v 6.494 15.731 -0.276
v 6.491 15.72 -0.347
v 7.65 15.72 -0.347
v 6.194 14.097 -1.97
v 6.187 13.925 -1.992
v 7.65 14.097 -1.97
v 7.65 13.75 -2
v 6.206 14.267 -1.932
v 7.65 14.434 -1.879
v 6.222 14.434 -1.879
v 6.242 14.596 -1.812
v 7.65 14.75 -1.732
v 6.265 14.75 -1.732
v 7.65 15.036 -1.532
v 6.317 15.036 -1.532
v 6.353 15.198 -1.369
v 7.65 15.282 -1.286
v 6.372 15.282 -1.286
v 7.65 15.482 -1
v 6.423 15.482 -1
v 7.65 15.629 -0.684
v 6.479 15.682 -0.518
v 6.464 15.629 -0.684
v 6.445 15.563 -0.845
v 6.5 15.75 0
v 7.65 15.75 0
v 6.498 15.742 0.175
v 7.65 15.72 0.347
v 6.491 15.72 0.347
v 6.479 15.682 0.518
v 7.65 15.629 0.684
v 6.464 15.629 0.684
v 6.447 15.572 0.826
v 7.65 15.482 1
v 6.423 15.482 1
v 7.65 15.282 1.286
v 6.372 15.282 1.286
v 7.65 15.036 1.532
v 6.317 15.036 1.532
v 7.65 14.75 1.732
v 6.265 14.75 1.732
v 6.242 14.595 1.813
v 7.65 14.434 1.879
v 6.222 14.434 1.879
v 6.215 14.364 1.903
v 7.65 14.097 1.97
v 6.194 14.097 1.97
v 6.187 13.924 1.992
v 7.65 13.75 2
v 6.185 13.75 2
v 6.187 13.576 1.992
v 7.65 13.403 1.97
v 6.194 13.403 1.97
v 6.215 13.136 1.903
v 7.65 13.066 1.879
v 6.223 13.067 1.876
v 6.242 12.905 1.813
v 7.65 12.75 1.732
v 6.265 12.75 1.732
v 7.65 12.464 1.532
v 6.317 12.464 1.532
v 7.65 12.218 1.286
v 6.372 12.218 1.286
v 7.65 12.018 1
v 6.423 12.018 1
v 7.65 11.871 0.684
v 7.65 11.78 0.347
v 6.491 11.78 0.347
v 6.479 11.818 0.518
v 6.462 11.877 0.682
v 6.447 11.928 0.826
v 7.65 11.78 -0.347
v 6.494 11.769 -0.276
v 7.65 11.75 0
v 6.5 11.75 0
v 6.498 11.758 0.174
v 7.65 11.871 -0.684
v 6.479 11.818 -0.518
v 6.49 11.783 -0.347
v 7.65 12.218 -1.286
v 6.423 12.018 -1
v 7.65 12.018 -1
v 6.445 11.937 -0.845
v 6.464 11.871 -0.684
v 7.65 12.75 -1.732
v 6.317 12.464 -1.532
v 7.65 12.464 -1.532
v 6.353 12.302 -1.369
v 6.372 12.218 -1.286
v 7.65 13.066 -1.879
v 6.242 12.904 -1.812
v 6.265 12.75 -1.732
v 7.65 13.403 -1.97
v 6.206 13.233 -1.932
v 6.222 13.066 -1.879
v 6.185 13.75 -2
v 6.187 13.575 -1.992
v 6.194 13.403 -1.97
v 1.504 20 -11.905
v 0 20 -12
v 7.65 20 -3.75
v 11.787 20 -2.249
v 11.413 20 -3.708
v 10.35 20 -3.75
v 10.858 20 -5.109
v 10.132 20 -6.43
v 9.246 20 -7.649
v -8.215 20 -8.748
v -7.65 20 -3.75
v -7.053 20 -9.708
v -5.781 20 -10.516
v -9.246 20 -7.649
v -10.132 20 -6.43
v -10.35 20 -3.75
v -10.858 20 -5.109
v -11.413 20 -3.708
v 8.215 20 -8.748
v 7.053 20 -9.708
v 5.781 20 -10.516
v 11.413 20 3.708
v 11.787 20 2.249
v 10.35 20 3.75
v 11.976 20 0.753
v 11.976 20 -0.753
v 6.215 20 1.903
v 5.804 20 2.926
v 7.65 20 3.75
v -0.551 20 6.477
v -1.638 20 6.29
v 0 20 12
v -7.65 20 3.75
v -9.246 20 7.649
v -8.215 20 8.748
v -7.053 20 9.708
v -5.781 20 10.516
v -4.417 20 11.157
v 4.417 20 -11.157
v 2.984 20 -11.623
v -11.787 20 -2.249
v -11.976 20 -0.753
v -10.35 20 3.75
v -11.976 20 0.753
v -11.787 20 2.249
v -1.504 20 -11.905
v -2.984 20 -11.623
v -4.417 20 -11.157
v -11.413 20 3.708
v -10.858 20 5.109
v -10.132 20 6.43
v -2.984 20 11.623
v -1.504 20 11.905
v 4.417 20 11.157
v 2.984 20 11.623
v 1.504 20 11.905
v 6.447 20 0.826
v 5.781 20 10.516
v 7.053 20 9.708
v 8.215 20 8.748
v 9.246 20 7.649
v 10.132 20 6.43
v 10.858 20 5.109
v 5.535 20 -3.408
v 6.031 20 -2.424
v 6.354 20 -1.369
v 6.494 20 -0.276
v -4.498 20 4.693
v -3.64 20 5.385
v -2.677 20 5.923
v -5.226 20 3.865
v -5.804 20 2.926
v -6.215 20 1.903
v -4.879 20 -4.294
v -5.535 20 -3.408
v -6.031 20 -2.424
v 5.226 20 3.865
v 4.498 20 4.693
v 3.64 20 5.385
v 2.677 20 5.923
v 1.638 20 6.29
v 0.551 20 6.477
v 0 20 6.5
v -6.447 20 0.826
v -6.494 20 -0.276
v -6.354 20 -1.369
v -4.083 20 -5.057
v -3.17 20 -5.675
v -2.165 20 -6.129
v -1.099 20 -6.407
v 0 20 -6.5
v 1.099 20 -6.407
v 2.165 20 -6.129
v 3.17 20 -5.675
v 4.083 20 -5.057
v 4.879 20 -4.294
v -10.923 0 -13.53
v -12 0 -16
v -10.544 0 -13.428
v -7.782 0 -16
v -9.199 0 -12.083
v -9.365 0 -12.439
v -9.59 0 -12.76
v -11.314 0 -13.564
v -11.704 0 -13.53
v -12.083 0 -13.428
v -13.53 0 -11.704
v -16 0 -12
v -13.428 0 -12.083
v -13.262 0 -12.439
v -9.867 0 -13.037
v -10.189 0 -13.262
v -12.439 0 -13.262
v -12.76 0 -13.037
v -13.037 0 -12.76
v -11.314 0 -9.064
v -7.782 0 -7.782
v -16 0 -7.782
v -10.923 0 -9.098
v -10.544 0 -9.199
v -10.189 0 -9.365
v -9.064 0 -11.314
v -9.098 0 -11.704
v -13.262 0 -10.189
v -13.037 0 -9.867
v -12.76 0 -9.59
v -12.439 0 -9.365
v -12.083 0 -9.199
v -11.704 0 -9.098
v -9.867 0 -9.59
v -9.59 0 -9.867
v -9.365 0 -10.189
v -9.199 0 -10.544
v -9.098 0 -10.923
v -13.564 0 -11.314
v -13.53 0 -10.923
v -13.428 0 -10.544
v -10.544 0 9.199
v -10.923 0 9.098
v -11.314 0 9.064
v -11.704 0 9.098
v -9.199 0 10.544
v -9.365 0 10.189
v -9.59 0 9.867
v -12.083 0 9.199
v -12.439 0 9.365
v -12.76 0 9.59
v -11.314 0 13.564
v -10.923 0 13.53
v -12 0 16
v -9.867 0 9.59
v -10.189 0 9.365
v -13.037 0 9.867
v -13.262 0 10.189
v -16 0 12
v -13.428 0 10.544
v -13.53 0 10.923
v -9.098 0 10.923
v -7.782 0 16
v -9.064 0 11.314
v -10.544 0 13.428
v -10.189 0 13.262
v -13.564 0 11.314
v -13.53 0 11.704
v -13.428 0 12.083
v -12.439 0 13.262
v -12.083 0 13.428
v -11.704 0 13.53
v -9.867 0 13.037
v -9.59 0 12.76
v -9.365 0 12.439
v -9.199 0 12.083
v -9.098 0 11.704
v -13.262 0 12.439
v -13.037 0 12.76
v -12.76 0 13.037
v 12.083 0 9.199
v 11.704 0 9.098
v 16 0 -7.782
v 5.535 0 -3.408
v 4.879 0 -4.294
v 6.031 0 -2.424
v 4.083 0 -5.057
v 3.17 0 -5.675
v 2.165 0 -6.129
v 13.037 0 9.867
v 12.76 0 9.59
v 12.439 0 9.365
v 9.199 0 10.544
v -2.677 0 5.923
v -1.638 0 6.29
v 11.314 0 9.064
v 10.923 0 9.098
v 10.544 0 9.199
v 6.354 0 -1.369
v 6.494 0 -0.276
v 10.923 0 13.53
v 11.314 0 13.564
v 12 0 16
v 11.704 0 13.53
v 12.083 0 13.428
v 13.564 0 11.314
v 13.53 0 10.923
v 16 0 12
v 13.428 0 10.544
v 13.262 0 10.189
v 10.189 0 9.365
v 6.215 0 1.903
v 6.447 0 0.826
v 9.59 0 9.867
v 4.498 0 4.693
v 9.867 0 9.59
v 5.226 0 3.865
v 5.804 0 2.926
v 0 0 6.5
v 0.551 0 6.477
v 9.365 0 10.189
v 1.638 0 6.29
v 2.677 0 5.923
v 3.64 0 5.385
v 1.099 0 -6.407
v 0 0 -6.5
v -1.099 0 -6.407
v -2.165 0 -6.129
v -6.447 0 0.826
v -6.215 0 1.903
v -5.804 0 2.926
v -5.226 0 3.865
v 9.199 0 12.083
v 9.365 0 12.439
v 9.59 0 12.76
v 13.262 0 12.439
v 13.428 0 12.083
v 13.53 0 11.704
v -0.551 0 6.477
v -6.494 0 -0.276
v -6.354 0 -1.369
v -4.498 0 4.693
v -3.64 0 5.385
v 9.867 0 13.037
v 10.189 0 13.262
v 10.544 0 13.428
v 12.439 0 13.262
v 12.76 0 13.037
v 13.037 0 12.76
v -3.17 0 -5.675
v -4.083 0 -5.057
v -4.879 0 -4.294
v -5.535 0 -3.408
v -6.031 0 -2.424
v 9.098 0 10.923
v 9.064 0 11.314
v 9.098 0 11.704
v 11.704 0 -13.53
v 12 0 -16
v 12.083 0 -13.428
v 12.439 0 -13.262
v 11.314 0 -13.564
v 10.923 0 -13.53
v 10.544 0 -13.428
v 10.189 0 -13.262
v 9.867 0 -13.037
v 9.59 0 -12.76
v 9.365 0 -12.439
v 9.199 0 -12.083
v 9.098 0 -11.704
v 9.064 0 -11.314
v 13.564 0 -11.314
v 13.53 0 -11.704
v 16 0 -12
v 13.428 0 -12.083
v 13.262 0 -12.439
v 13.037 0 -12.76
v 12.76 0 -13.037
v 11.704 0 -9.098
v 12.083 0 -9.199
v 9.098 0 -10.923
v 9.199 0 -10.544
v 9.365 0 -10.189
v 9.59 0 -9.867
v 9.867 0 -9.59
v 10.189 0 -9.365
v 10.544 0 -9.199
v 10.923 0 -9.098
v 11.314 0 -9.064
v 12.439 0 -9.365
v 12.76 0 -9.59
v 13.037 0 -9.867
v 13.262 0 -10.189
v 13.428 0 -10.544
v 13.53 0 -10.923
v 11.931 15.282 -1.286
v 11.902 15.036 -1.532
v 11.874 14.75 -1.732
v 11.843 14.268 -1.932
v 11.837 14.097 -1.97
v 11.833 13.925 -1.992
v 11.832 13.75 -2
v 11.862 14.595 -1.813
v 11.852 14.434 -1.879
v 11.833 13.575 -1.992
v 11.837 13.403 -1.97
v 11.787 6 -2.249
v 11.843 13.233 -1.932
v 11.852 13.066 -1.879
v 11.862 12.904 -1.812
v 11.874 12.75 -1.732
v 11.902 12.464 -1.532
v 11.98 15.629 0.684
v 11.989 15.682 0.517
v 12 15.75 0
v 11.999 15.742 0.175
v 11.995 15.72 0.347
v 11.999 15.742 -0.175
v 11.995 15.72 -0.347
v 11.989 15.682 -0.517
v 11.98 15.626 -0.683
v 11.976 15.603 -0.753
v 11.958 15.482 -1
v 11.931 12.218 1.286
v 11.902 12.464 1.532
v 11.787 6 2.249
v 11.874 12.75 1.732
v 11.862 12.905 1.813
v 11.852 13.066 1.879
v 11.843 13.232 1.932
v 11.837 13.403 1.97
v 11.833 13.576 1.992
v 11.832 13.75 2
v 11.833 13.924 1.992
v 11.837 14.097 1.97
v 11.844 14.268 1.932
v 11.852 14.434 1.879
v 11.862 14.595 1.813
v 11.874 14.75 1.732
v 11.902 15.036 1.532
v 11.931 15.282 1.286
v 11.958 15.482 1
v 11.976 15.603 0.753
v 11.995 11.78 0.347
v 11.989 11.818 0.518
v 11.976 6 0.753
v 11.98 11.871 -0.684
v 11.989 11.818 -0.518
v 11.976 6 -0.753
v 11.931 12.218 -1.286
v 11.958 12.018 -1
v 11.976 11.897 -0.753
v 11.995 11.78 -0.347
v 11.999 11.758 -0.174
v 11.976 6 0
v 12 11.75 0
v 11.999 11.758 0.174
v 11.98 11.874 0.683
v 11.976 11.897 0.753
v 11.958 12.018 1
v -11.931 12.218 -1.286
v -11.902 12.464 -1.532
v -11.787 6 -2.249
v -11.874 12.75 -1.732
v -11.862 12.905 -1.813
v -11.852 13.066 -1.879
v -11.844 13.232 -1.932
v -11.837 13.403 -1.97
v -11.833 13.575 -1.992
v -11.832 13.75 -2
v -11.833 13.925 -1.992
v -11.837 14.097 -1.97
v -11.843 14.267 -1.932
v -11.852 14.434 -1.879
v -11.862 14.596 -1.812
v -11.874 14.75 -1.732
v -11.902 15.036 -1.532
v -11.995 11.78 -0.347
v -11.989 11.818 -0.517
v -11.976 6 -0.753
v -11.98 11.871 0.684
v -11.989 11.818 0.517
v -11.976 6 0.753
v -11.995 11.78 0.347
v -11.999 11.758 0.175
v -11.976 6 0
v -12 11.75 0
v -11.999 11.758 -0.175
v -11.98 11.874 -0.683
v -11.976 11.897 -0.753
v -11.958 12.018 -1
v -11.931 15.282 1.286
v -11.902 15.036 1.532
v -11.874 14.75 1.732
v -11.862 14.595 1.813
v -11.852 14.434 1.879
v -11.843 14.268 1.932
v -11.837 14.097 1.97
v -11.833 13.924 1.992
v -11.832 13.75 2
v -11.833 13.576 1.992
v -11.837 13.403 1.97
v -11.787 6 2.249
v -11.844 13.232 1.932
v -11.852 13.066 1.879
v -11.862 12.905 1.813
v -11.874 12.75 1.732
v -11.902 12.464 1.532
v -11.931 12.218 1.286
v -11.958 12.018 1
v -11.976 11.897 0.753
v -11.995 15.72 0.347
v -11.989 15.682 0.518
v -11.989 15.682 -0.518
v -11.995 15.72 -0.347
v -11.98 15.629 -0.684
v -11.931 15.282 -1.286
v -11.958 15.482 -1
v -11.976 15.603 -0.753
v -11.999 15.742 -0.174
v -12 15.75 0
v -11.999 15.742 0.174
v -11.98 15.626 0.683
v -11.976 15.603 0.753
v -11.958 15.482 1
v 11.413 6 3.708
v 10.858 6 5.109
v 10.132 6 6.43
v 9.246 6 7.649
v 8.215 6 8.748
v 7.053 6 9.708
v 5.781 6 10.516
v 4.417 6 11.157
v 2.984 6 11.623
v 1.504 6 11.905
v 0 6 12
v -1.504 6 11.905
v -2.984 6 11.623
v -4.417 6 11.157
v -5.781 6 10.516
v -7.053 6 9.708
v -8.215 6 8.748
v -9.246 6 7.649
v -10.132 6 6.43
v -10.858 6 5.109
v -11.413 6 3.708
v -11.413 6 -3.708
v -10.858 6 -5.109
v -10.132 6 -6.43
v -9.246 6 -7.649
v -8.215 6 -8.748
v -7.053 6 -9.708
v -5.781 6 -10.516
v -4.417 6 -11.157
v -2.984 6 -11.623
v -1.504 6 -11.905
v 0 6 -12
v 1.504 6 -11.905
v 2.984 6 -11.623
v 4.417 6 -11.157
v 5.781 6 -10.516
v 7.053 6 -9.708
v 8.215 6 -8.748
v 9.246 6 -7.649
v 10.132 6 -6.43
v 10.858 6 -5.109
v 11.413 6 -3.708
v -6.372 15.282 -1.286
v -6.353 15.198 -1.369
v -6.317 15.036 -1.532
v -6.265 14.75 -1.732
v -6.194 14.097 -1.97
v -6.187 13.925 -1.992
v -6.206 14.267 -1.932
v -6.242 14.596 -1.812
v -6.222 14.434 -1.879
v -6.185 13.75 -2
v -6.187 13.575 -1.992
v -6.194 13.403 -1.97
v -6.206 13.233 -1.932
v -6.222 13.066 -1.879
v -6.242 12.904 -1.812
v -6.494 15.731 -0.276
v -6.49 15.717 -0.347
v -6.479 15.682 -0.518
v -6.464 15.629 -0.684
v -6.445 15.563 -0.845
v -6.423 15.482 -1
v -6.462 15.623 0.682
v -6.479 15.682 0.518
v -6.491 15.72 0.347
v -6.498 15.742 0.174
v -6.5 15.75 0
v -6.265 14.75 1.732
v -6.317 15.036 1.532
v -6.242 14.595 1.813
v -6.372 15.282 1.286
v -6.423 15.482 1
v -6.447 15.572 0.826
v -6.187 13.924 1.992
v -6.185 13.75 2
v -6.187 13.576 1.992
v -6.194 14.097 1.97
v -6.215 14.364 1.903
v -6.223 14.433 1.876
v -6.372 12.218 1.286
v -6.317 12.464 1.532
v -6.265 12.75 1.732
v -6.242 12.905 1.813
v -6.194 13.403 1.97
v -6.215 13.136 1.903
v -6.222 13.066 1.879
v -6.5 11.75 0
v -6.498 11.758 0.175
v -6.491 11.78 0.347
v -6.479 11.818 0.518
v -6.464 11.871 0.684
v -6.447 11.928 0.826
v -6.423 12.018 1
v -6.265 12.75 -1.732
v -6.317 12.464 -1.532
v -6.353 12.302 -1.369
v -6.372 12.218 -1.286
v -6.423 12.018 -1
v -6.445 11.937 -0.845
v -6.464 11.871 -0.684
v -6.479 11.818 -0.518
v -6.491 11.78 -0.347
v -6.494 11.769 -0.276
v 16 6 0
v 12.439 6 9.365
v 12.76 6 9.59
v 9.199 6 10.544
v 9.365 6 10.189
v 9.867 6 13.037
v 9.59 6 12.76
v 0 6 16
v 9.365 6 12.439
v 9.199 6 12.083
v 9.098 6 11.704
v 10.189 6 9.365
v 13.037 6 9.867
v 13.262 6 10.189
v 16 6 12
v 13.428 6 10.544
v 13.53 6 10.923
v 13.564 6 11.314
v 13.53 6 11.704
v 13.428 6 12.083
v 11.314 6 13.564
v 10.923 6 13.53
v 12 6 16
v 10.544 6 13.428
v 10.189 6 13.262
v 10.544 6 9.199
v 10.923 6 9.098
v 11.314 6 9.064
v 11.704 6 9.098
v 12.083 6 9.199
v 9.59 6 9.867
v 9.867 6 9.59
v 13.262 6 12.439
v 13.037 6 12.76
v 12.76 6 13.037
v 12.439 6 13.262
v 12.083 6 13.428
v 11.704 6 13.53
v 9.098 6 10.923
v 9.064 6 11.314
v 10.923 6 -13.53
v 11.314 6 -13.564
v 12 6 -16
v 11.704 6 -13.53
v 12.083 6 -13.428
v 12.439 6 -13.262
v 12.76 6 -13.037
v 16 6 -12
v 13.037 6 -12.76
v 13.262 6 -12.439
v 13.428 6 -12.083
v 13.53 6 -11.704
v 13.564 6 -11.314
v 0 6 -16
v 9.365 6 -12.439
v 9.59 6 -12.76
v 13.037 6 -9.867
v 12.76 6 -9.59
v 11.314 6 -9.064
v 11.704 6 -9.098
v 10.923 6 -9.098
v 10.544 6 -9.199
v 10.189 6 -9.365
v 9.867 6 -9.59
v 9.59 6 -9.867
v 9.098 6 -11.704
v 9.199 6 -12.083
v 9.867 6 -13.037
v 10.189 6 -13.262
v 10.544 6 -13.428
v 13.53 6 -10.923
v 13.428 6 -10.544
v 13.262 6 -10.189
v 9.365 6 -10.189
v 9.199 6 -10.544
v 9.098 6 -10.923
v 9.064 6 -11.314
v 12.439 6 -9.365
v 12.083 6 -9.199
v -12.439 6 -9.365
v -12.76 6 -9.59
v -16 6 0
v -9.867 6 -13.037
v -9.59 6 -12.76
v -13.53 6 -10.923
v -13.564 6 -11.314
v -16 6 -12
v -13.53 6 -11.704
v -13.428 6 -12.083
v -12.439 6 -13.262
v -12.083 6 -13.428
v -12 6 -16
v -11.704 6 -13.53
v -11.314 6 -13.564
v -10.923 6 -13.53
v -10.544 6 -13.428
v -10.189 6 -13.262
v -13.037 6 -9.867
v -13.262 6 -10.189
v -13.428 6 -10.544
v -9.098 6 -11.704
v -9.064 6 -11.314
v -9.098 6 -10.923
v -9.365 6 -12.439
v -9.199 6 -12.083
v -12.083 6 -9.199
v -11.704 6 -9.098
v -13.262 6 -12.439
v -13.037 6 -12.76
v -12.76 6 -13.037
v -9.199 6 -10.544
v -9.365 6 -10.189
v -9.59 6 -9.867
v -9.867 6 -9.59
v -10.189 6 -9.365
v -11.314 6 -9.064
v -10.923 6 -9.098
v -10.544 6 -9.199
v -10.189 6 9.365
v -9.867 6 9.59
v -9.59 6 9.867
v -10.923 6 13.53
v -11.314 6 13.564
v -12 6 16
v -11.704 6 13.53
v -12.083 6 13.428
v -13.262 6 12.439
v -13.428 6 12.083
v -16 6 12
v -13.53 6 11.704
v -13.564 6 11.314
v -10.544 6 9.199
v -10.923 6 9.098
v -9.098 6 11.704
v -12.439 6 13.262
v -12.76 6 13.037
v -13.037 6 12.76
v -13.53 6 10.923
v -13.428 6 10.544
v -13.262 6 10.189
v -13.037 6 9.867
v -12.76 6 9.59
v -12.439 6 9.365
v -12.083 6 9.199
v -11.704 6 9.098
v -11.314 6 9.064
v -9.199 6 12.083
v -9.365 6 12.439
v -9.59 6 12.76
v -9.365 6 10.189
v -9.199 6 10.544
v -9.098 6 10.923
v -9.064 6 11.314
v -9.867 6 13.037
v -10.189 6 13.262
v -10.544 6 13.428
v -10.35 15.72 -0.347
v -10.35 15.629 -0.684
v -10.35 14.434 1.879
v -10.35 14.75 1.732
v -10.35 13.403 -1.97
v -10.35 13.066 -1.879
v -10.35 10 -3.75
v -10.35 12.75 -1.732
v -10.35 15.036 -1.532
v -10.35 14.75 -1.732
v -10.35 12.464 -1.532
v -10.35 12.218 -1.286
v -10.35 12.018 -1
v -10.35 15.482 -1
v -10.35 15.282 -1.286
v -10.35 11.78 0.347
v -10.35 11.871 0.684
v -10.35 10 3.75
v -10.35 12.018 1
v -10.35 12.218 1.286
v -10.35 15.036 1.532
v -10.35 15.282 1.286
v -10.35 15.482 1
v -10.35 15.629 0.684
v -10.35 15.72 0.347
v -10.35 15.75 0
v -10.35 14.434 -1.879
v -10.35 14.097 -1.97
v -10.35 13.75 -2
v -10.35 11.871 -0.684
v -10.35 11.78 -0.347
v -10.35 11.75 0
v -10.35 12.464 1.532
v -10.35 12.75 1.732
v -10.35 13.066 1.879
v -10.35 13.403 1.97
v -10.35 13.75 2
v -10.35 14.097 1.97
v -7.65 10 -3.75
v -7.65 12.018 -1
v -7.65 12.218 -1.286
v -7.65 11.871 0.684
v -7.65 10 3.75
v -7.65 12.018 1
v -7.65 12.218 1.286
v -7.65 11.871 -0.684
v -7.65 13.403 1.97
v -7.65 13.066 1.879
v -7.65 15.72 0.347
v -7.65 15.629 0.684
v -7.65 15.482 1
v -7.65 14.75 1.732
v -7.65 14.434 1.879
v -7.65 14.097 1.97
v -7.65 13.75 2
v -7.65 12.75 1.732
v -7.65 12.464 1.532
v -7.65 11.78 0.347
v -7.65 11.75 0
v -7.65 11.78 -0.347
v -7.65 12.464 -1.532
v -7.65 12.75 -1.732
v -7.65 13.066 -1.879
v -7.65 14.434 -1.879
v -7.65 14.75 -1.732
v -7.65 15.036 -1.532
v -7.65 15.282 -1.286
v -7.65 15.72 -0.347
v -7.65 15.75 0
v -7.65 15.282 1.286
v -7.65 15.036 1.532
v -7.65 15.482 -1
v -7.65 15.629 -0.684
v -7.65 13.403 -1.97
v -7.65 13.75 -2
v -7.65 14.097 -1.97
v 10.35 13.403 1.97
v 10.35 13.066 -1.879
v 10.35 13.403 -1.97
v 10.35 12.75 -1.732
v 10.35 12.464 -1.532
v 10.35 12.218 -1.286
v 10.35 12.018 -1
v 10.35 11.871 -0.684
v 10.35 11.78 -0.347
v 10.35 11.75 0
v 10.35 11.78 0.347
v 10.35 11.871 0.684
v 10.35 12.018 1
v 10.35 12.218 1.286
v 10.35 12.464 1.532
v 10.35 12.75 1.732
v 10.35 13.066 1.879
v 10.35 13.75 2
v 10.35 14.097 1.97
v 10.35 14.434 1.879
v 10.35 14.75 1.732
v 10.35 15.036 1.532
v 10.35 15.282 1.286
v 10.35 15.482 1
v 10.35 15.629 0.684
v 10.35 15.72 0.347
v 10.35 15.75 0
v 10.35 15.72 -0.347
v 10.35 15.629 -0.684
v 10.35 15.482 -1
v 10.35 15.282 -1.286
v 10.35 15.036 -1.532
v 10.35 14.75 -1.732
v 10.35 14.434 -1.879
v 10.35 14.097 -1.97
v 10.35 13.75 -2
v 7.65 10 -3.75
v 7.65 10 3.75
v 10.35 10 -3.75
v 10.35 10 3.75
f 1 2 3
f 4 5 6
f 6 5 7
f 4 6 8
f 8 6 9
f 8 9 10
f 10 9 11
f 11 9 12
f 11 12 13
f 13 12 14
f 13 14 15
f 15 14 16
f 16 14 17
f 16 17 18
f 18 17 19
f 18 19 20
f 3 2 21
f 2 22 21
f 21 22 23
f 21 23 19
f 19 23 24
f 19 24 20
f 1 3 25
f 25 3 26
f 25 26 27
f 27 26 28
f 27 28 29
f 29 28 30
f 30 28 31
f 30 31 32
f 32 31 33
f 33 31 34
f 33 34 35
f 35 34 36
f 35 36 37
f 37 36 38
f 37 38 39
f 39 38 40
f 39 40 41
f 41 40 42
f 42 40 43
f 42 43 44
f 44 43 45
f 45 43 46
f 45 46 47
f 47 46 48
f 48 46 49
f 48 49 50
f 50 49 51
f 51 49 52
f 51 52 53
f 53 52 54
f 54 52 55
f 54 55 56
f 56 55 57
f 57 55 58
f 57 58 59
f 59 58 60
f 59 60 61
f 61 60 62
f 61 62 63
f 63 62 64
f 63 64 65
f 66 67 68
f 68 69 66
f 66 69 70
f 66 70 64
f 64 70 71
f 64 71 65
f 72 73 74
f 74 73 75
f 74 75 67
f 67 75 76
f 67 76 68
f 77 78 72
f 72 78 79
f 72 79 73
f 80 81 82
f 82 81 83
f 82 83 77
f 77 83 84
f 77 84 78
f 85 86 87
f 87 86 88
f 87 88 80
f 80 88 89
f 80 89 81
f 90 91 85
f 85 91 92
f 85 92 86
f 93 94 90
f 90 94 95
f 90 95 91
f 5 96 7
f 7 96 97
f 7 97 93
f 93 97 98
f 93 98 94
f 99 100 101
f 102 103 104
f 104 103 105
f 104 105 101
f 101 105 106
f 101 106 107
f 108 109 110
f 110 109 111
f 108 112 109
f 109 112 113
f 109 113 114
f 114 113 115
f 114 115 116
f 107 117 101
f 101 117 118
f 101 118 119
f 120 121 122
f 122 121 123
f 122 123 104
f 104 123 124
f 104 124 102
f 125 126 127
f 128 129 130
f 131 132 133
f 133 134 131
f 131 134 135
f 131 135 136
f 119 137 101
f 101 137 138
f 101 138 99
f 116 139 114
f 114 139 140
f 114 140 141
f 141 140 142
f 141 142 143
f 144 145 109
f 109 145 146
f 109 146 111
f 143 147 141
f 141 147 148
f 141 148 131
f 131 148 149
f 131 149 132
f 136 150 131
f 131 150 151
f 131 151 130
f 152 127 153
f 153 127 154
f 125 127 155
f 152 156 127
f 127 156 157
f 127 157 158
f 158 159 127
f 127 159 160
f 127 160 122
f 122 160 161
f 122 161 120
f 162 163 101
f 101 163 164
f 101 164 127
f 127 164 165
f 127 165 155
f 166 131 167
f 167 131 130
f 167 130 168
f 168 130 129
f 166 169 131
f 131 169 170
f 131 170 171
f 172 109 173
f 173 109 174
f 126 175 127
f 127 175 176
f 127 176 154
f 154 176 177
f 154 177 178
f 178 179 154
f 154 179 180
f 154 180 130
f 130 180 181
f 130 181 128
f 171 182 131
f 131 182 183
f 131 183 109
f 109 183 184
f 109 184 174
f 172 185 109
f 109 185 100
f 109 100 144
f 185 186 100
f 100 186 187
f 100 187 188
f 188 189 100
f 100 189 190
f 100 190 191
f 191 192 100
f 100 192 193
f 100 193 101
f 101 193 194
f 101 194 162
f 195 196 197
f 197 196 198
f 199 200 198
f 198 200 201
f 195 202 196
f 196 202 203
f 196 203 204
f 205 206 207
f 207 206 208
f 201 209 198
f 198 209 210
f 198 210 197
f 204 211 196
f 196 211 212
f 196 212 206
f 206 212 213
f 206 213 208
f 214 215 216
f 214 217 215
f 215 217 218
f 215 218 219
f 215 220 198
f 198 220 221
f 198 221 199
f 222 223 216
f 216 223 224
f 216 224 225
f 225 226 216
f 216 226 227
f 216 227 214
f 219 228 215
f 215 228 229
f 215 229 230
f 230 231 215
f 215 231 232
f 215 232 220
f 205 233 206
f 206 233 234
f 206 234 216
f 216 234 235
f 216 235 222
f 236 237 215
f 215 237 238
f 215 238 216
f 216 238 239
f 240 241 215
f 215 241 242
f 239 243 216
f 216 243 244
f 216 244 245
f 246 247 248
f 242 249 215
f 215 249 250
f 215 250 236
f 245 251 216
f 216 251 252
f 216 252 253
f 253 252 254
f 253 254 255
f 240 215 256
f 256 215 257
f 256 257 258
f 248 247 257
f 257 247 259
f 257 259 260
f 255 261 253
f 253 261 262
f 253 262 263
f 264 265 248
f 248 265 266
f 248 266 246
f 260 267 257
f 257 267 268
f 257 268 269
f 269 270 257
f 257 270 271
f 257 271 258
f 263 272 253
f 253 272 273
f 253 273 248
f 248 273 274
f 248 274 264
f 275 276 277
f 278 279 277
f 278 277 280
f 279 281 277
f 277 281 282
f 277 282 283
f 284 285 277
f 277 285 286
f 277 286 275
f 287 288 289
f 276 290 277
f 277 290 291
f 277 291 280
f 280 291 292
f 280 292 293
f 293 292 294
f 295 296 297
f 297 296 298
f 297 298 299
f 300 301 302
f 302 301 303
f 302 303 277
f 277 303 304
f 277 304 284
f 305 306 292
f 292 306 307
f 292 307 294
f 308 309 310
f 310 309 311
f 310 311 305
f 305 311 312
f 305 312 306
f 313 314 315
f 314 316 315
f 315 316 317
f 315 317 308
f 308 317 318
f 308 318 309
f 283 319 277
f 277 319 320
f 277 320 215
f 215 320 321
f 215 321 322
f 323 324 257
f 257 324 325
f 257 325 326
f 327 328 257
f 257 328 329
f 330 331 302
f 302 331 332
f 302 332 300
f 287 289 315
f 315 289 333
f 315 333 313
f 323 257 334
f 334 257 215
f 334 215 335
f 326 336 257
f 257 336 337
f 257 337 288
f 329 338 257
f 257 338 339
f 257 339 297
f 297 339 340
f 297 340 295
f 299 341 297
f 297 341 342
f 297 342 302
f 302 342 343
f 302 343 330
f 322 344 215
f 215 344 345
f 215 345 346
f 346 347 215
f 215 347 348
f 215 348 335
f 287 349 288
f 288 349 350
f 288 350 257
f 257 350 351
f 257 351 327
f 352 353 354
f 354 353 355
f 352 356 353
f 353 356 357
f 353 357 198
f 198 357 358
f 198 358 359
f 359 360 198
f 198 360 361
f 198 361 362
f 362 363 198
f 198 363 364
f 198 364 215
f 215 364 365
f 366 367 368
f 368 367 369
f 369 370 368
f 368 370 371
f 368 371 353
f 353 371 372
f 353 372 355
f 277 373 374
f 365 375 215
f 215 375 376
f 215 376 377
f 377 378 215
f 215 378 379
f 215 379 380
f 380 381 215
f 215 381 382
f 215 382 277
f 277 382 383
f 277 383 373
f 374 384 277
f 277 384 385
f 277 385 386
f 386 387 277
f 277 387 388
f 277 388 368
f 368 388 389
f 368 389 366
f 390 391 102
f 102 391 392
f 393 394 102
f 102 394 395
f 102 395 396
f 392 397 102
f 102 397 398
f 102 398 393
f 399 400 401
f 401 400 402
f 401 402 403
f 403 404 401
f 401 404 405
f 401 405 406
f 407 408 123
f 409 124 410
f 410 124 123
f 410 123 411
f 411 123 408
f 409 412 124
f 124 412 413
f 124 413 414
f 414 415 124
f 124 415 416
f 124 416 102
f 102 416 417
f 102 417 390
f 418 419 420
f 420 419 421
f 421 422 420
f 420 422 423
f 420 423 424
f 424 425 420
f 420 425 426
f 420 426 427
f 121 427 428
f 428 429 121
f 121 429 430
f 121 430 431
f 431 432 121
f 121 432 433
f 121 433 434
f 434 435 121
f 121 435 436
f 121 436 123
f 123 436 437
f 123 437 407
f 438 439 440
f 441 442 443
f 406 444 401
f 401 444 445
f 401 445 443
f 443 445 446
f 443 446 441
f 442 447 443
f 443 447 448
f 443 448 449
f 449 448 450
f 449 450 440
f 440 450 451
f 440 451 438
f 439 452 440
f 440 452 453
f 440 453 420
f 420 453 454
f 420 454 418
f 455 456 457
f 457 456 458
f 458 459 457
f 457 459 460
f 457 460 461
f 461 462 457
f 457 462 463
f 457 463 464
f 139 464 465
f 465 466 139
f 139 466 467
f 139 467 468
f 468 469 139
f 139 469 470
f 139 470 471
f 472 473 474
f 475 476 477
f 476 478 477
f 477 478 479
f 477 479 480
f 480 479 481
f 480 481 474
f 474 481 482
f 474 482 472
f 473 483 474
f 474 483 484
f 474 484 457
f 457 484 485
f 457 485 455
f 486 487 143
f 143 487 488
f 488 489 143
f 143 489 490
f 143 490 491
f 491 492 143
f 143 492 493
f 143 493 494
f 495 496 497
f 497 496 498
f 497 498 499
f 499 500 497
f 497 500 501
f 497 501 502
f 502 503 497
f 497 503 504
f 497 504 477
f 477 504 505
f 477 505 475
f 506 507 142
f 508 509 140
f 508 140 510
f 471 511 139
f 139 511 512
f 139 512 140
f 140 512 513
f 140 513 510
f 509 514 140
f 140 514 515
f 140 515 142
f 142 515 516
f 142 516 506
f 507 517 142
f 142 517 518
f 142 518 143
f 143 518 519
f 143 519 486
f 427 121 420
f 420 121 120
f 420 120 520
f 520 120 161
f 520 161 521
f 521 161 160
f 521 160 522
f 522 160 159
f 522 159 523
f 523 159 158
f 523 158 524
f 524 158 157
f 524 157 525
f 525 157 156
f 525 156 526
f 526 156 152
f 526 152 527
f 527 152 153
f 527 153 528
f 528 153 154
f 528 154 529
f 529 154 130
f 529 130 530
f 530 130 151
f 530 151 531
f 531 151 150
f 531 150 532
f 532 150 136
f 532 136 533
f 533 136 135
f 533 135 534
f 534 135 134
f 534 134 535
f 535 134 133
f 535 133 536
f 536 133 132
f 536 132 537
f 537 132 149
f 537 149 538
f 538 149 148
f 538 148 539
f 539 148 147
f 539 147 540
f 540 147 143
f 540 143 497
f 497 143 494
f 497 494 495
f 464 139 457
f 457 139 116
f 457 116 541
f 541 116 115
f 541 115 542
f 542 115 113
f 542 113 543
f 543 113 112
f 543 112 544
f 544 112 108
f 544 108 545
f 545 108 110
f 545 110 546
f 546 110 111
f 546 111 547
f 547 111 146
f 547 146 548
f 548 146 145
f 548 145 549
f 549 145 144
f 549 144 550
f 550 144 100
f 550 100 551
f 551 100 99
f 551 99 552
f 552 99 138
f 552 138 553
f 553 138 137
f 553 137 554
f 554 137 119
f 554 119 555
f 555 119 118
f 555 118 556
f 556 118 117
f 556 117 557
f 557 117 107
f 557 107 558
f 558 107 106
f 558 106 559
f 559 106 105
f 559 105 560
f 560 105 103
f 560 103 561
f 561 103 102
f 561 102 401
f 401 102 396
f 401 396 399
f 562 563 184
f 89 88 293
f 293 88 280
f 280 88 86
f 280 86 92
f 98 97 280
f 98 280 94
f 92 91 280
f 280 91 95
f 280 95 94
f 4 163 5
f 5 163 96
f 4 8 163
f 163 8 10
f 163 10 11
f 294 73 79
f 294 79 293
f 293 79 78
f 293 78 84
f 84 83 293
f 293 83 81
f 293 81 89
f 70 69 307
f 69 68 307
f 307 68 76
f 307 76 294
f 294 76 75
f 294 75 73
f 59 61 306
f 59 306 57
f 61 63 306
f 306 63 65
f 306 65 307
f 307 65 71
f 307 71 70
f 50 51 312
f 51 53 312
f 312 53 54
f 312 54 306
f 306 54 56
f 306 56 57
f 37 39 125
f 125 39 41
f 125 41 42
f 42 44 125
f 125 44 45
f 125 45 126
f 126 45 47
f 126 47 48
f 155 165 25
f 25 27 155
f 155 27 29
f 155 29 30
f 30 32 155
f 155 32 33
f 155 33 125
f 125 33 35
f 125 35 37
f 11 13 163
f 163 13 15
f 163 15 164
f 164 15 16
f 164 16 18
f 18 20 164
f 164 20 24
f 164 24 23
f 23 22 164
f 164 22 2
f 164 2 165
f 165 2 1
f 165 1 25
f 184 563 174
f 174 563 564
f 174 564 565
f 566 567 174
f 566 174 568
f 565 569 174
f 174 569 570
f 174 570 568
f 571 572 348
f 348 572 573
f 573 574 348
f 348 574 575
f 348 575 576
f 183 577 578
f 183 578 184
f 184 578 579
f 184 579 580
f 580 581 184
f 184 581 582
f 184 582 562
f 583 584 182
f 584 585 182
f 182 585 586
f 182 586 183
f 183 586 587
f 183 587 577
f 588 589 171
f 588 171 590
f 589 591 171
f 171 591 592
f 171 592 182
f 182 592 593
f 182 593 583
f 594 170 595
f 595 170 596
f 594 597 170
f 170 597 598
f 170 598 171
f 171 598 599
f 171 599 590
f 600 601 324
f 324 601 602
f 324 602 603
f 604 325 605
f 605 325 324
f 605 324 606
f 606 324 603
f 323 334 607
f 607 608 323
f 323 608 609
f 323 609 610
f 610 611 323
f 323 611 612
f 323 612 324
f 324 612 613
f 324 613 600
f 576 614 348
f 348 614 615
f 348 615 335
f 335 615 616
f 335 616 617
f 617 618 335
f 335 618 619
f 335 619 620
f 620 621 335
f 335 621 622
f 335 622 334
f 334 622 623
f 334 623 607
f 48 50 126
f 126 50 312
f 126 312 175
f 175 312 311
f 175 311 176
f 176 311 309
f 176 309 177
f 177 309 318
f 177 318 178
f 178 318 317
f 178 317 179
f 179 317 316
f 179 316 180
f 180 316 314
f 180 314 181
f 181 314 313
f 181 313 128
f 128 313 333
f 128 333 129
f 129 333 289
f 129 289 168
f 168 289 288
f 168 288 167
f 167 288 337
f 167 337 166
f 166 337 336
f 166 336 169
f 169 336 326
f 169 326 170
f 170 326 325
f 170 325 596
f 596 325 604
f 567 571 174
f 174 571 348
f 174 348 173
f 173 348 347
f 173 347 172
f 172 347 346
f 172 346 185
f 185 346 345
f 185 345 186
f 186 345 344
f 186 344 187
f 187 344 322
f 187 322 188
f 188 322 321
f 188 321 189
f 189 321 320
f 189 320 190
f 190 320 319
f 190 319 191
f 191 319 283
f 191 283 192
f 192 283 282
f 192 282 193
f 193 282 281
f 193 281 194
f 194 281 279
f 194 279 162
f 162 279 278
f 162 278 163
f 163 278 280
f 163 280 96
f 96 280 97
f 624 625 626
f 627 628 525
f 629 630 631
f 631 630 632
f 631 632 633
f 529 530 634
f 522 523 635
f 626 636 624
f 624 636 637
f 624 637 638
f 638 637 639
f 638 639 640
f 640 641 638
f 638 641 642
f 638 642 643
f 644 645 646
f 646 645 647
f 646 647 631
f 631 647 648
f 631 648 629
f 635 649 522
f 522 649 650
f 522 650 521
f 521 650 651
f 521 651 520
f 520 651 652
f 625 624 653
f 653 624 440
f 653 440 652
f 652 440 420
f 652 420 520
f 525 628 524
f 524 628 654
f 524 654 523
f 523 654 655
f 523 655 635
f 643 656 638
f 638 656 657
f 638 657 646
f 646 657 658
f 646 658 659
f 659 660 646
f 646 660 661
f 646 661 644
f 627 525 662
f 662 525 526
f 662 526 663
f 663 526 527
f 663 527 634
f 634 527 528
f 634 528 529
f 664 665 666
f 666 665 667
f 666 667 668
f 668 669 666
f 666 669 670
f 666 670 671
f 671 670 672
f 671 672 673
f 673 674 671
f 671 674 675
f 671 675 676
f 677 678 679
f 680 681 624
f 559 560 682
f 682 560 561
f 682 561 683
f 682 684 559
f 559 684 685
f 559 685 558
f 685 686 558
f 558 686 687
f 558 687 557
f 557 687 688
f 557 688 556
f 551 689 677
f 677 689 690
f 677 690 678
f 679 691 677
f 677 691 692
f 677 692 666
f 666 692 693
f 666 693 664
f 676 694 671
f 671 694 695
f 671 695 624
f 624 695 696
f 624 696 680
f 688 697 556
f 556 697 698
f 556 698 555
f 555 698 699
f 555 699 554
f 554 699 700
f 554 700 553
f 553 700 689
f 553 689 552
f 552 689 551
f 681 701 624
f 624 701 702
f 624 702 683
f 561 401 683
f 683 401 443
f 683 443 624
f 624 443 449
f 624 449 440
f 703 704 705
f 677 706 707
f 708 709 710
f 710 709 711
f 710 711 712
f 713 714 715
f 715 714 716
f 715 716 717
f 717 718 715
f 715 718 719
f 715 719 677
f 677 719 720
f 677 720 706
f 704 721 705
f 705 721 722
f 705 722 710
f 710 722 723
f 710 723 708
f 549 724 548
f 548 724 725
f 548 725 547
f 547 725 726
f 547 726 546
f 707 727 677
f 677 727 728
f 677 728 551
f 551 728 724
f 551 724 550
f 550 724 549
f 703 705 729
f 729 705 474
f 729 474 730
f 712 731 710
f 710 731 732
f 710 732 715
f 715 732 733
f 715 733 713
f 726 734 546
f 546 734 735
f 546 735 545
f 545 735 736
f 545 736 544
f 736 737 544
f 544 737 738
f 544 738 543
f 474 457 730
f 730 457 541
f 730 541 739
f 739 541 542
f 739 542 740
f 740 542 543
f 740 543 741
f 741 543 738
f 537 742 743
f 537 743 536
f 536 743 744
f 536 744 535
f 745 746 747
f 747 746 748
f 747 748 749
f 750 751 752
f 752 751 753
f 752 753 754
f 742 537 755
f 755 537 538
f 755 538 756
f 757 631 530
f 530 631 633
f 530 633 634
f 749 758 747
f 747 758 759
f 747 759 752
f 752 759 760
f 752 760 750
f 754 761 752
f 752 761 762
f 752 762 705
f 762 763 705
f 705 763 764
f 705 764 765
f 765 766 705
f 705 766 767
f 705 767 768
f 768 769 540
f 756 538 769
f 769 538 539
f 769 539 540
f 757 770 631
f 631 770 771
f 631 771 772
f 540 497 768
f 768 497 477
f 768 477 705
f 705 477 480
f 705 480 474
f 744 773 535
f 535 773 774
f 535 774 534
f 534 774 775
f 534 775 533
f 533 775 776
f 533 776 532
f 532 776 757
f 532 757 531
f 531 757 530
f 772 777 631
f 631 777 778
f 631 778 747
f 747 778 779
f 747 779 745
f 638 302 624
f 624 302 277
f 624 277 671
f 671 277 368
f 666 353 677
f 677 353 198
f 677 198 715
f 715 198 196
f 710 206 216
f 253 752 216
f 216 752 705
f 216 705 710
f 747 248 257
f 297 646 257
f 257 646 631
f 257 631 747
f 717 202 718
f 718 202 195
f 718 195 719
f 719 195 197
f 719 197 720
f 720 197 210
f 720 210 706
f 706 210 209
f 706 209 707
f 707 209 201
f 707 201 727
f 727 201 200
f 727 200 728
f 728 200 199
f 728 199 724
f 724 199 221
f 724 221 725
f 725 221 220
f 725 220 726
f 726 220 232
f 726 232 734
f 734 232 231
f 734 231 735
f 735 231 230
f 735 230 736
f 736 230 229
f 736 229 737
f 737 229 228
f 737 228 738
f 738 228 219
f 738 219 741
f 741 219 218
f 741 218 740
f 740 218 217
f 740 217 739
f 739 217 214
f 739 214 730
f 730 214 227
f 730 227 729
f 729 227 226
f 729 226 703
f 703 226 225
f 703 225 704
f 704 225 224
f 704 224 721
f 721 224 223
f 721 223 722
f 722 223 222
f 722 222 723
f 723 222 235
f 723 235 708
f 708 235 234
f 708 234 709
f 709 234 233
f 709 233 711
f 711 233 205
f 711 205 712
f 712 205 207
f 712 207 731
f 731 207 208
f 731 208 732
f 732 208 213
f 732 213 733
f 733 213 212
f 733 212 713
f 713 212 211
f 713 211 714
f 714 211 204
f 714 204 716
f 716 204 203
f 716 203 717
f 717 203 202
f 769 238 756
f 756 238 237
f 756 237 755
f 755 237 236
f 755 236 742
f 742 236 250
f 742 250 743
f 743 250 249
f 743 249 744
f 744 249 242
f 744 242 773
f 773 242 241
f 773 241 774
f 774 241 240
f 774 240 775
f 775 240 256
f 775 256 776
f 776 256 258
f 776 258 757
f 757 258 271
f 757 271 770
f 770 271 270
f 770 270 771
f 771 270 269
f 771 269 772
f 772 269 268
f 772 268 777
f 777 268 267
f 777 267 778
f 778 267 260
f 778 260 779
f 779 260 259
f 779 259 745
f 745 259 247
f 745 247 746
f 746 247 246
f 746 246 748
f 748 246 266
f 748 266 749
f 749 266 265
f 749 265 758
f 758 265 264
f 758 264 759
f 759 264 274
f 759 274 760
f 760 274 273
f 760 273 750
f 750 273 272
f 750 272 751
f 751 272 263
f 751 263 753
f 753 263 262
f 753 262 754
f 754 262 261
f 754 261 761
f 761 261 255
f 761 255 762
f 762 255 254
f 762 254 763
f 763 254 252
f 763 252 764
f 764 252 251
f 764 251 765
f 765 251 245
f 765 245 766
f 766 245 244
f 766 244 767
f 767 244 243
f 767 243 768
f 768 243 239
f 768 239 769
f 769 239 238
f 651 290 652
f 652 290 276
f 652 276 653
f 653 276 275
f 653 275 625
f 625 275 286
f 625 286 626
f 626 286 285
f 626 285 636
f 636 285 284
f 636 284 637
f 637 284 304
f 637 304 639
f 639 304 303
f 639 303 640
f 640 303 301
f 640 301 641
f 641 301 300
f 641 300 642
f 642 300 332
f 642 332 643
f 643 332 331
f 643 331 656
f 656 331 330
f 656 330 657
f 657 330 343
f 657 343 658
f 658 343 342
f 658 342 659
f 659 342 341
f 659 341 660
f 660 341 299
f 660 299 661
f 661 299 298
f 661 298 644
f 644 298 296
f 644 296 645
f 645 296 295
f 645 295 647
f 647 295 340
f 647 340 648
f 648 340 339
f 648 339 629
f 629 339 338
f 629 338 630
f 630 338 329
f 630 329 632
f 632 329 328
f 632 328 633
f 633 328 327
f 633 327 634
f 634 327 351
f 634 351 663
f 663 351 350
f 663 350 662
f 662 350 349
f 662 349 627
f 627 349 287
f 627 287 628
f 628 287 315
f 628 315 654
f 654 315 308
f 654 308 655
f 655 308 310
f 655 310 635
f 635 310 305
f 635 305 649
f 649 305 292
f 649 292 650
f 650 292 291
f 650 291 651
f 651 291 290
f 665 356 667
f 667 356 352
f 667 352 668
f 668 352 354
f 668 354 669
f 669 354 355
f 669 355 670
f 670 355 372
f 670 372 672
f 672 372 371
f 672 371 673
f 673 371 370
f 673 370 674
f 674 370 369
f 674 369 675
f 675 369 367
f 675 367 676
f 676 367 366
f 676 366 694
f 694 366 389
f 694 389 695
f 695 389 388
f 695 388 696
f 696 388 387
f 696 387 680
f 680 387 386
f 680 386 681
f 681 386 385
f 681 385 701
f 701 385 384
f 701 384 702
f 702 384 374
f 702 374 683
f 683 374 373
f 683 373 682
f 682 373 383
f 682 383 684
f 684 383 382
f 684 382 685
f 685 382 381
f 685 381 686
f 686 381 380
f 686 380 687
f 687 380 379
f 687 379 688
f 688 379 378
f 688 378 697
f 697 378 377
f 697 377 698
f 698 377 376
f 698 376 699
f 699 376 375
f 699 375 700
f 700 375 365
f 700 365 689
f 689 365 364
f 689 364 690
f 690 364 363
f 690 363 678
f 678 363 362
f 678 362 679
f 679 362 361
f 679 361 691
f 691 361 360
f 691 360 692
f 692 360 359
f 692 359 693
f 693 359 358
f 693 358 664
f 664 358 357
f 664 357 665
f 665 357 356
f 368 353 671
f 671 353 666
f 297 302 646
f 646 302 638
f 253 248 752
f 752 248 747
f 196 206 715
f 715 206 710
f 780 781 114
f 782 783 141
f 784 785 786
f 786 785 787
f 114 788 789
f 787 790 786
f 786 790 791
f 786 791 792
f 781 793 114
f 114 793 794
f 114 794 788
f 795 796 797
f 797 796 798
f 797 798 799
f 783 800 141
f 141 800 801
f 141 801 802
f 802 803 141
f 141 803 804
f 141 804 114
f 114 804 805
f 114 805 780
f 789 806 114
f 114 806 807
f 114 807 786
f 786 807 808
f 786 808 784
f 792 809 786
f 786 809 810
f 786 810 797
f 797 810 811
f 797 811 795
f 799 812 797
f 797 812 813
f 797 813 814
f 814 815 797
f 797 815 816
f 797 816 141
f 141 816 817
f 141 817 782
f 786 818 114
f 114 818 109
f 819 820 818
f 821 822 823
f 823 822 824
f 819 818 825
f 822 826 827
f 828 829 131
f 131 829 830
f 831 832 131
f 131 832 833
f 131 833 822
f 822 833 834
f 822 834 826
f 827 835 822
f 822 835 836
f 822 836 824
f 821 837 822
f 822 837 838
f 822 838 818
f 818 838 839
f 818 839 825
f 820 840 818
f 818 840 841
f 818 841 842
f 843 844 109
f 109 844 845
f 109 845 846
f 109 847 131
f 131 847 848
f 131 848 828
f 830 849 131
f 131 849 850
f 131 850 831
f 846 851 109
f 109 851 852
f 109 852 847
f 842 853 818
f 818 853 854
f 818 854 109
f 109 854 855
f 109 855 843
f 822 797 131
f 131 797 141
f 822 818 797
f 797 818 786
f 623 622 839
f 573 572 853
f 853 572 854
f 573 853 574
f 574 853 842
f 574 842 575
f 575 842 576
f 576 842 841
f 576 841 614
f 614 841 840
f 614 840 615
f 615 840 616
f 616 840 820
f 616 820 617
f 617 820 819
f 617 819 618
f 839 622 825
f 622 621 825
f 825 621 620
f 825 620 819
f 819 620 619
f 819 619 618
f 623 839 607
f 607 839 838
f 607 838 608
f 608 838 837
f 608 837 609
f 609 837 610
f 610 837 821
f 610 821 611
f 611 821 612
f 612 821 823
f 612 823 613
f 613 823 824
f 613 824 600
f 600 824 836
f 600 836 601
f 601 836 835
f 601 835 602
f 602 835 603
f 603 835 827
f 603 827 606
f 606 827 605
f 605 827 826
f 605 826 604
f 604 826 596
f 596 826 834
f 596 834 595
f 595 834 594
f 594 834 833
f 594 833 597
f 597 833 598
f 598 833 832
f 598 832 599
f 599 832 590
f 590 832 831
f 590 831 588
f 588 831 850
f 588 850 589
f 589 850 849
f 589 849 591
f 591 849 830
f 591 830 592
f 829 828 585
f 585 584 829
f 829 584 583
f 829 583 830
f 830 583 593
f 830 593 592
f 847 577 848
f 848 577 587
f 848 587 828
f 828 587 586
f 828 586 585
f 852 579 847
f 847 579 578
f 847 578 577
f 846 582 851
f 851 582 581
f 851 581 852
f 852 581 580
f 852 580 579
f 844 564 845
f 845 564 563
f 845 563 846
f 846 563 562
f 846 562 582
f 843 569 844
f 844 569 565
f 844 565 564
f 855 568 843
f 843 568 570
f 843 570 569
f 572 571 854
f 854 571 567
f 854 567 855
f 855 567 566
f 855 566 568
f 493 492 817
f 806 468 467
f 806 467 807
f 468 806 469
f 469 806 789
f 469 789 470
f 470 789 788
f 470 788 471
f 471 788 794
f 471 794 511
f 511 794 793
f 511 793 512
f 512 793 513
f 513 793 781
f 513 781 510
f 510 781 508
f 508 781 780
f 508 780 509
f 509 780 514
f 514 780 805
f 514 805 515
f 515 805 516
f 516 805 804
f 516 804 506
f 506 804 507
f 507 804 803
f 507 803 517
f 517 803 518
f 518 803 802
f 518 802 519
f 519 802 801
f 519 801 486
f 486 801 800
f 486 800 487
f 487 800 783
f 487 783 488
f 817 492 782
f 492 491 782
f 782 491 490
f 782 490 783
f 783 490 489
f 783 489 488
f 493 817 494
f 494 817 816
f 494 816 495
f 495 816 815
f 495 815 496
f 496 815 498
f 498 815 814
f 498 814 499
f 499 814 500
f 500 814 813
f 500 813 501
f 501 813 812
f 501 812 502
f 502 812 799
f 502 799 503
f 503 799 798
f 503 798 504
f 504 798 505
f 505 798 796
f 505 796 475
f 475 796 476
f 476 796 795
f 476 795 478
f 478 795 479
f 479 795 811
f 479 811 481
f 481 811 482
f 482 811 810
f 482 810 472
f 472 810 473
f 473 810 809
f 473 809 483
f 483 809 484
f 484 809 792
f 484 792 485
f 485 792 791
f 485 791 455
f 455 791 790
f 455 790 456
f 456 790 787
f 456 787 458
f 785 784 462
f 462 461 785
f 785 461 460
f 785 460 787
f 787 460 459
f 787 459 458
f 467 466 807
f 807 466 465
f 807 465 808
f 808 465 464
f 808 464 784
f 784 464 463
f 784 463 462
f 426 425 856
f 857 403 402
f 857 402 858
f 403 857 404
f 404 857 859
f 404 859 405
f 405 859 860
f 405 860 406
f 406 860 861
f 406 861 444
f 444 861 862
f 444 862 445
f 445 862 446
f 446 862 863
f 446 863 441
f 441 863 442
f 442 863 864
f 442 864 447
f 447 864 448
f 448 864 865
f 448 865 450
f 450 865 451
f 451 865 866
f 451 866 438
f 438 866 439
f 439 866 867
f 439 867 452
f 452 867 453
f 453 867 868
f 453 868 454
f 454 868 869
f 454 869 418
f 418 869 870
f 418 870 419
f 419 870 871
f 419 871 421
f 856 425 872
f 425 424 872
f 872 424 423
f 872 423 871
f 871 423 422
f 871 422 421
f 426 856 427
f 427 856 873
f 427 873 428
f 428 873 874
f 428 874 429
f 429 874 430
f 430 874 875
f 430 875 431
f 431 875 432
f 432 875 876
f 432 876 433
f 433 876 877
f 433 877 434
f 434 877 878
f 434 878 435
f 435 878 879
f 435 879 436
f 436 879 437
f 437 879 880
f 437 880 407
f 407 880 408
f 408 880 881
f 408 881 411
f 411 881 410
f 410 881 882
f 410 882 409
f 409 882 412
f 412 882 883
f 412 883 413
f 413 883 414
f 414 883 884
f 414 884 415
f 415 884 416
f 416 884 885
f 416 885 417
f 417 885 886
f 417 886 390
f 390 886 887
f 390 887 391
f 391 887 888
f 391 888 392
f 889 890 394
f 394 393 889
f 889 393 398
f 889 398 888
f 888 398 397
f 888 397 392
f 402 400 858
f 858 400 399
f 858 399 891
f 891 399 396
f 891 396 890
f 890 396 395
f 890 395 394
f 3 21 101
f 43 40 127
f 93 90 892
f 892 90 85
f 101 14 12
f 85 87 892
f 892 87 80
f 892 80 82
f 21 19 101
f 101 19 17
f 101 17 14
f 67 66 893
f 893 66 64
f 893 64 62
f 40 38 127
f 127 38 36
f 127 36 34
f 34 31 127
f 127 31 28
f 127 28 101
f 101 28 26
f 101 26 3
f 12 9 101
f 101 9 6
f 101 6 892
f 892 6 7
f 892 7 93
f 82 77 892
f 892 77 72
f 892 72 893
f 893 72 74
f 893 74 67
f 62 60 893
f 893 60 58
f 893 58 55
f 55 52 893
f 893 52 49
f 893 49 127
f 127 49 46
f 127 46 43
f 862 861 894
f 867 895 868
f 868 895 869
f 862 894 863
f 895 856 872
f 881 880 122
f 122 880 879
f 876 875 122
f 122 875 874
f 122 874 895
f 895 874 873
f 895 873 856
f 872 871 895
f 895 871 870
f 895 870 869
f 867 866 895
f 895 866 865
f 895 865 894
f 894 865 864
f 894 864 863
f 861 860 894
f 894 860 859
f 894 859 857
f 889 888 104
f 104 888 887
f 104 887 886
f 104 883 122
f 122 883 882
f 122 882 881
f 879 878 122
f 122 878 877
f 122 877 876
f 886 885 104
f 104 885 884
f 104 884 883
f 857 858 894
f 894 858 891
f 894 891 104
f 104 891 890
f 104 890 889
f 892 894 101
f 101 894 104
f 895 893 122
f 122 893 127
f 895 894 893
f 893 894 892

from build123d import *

# Parameters (mm, degrees)
SKETCH1_R               = 12
SKETCH1_R_2             = 6.5
BOSS_EXTRUDE1_DEPTH     = 20
SKETCH2_W               = 32
SKETCH2_H               = 32
SKETCH2_R               = 6.5
BOSS_EXTRUDE2_DEPTH     = 6
SKETCH3_R               = 2.25
CUT_EXTRUDE1_DEPTH      = 31.199337741
CHAMFER1_SIZE           = 4
CUT_EXTRUDE2_START      = 20
SKETCH4_W               = 2.7
SKETCH4_H               = 7.5
CUT_EXTRUDE2_DEPTH      = 10
CUT_EXTRUDE3_DEPTH      = 31.199337741
CUT_EXTRUDE3_DEPTH_BACK = 31.199337741
SKETCH5_R               = 2


with BuildPart() as part:
    # Sketch1 → Boss-Extrude1 (new body)
    with BuildSketch(Plane(origin=(0, 0, 0), x_dir=(1, 0, 0), z_dir=(0, 1, 0))):
        with Locations(Location((0, 0, 0), (0, 0, 270))):
            Circle(SKETCH1_R)
        with Locations(Location((0, 0, 0), (0, 0, 270))):
            Circle(SKETCH1_R_2, mode=Mode.SUBTRACT)
    extrude(amount=BOSS_EXTRUDE1_DEPTH)

    # Sketch2 → Boss-Extrude2 (add)
    with BuildSketch(Plane(origin=(0, 0, 0), x_dir=(1, 0, 0), z_dir=(0, 1, 0))):
        Rectangle(SKETCH2_W, SKETCH2_H)
        with Locations(Location((0, 0, 0), (0, 0, 270))):
            Circle(SKETCH2_R, mode=Mode.SUBTRACT)
    extrude(amount=BOSS_EXTRUDE2_DEPTH)

    # Sketch3 → Cut-Extrude1 (cut, through all)
    with BuildSketch(Plane(origin=(0, 0, 0), x_dir=(1, 0, 0), z_dir=(0, 1, 0))):
        with Locations(Location((-11.313708499, 11.313708499, 0), (0, 0, 270))):
            Circle(SKETCH3_R)
        with Locations(Location((-11.313708499, -11.313708499, 0), (0, 0, 270))):
            Circle(SKETCH3_R)
        with Locations(Location((11.313708499, -11.313708499, 0), (0, 0, 270))):
            Circle(SKETCH3_R)
        with Locations(Location((11.313708499, 11.313708499, 0), (0, 0, 270))):
            Circle(SKETCH3_R)
    extrude(amount=CUT_EXTRUDE1_DEPTH, mode=Mode.SUBTRACT)

    # Chamfer1
    chamfer1_edges = [part.edges().sort_by_distance(p)[0] for p in [
        (16, 3, 16),
        (16, 3, -16),
        (-16, 3, -16),
        (-16, 3, 16),
    ]]
    chamfer(chamfer1_edges, length=CHAMFER1_SIZE)

    # Sketch4 → Cut-Extrude2 (cut)
    with BuildSketch(Plane(origin=(0, 0, 0), x_dir=(1, 0, 0), z_dir=(0, 1, 0)).offset(CUT_EXTRUDE2_START)):
        with Locations((-9, 0)):
            Rectangle(SKETCH4_W, SKETCH4_H)
    cut_extrude2 = extrude(amount=-CUT_EXTRUDE2_DEPTH, mode=Mode.SUBTRACT)

    # Sketch5 → Cut-Extrude3 (cut, two sides: drawn at the far end of the back side and taken through both)
    with BuildSketch(Plane(origin=(0, 0, 0), x_dir=(0, 0, -1), z_dir=(1, 0, 0)).offset(-CUT_EXTRUDE3_DEPTH_BACK)):
        with Locations((0, 13.75)):
            Circle(SKETCH5_R)
    extrude(amount=CUT_EXTRUDE3_DEPTH + CUT_EXTRUDE3_DEPTH_BACK, mode=Mode.SUBTRACT)

    # Mirror1: Cut-Extrude2 across plane
    add(cut_extrude2.mirror(Plane(origin=(0, 0, 0), x_dir=(0, 0, 1), z_dir=(1, 0, 0))), mode=Mode.SUBTRACT)


solid = part.part
